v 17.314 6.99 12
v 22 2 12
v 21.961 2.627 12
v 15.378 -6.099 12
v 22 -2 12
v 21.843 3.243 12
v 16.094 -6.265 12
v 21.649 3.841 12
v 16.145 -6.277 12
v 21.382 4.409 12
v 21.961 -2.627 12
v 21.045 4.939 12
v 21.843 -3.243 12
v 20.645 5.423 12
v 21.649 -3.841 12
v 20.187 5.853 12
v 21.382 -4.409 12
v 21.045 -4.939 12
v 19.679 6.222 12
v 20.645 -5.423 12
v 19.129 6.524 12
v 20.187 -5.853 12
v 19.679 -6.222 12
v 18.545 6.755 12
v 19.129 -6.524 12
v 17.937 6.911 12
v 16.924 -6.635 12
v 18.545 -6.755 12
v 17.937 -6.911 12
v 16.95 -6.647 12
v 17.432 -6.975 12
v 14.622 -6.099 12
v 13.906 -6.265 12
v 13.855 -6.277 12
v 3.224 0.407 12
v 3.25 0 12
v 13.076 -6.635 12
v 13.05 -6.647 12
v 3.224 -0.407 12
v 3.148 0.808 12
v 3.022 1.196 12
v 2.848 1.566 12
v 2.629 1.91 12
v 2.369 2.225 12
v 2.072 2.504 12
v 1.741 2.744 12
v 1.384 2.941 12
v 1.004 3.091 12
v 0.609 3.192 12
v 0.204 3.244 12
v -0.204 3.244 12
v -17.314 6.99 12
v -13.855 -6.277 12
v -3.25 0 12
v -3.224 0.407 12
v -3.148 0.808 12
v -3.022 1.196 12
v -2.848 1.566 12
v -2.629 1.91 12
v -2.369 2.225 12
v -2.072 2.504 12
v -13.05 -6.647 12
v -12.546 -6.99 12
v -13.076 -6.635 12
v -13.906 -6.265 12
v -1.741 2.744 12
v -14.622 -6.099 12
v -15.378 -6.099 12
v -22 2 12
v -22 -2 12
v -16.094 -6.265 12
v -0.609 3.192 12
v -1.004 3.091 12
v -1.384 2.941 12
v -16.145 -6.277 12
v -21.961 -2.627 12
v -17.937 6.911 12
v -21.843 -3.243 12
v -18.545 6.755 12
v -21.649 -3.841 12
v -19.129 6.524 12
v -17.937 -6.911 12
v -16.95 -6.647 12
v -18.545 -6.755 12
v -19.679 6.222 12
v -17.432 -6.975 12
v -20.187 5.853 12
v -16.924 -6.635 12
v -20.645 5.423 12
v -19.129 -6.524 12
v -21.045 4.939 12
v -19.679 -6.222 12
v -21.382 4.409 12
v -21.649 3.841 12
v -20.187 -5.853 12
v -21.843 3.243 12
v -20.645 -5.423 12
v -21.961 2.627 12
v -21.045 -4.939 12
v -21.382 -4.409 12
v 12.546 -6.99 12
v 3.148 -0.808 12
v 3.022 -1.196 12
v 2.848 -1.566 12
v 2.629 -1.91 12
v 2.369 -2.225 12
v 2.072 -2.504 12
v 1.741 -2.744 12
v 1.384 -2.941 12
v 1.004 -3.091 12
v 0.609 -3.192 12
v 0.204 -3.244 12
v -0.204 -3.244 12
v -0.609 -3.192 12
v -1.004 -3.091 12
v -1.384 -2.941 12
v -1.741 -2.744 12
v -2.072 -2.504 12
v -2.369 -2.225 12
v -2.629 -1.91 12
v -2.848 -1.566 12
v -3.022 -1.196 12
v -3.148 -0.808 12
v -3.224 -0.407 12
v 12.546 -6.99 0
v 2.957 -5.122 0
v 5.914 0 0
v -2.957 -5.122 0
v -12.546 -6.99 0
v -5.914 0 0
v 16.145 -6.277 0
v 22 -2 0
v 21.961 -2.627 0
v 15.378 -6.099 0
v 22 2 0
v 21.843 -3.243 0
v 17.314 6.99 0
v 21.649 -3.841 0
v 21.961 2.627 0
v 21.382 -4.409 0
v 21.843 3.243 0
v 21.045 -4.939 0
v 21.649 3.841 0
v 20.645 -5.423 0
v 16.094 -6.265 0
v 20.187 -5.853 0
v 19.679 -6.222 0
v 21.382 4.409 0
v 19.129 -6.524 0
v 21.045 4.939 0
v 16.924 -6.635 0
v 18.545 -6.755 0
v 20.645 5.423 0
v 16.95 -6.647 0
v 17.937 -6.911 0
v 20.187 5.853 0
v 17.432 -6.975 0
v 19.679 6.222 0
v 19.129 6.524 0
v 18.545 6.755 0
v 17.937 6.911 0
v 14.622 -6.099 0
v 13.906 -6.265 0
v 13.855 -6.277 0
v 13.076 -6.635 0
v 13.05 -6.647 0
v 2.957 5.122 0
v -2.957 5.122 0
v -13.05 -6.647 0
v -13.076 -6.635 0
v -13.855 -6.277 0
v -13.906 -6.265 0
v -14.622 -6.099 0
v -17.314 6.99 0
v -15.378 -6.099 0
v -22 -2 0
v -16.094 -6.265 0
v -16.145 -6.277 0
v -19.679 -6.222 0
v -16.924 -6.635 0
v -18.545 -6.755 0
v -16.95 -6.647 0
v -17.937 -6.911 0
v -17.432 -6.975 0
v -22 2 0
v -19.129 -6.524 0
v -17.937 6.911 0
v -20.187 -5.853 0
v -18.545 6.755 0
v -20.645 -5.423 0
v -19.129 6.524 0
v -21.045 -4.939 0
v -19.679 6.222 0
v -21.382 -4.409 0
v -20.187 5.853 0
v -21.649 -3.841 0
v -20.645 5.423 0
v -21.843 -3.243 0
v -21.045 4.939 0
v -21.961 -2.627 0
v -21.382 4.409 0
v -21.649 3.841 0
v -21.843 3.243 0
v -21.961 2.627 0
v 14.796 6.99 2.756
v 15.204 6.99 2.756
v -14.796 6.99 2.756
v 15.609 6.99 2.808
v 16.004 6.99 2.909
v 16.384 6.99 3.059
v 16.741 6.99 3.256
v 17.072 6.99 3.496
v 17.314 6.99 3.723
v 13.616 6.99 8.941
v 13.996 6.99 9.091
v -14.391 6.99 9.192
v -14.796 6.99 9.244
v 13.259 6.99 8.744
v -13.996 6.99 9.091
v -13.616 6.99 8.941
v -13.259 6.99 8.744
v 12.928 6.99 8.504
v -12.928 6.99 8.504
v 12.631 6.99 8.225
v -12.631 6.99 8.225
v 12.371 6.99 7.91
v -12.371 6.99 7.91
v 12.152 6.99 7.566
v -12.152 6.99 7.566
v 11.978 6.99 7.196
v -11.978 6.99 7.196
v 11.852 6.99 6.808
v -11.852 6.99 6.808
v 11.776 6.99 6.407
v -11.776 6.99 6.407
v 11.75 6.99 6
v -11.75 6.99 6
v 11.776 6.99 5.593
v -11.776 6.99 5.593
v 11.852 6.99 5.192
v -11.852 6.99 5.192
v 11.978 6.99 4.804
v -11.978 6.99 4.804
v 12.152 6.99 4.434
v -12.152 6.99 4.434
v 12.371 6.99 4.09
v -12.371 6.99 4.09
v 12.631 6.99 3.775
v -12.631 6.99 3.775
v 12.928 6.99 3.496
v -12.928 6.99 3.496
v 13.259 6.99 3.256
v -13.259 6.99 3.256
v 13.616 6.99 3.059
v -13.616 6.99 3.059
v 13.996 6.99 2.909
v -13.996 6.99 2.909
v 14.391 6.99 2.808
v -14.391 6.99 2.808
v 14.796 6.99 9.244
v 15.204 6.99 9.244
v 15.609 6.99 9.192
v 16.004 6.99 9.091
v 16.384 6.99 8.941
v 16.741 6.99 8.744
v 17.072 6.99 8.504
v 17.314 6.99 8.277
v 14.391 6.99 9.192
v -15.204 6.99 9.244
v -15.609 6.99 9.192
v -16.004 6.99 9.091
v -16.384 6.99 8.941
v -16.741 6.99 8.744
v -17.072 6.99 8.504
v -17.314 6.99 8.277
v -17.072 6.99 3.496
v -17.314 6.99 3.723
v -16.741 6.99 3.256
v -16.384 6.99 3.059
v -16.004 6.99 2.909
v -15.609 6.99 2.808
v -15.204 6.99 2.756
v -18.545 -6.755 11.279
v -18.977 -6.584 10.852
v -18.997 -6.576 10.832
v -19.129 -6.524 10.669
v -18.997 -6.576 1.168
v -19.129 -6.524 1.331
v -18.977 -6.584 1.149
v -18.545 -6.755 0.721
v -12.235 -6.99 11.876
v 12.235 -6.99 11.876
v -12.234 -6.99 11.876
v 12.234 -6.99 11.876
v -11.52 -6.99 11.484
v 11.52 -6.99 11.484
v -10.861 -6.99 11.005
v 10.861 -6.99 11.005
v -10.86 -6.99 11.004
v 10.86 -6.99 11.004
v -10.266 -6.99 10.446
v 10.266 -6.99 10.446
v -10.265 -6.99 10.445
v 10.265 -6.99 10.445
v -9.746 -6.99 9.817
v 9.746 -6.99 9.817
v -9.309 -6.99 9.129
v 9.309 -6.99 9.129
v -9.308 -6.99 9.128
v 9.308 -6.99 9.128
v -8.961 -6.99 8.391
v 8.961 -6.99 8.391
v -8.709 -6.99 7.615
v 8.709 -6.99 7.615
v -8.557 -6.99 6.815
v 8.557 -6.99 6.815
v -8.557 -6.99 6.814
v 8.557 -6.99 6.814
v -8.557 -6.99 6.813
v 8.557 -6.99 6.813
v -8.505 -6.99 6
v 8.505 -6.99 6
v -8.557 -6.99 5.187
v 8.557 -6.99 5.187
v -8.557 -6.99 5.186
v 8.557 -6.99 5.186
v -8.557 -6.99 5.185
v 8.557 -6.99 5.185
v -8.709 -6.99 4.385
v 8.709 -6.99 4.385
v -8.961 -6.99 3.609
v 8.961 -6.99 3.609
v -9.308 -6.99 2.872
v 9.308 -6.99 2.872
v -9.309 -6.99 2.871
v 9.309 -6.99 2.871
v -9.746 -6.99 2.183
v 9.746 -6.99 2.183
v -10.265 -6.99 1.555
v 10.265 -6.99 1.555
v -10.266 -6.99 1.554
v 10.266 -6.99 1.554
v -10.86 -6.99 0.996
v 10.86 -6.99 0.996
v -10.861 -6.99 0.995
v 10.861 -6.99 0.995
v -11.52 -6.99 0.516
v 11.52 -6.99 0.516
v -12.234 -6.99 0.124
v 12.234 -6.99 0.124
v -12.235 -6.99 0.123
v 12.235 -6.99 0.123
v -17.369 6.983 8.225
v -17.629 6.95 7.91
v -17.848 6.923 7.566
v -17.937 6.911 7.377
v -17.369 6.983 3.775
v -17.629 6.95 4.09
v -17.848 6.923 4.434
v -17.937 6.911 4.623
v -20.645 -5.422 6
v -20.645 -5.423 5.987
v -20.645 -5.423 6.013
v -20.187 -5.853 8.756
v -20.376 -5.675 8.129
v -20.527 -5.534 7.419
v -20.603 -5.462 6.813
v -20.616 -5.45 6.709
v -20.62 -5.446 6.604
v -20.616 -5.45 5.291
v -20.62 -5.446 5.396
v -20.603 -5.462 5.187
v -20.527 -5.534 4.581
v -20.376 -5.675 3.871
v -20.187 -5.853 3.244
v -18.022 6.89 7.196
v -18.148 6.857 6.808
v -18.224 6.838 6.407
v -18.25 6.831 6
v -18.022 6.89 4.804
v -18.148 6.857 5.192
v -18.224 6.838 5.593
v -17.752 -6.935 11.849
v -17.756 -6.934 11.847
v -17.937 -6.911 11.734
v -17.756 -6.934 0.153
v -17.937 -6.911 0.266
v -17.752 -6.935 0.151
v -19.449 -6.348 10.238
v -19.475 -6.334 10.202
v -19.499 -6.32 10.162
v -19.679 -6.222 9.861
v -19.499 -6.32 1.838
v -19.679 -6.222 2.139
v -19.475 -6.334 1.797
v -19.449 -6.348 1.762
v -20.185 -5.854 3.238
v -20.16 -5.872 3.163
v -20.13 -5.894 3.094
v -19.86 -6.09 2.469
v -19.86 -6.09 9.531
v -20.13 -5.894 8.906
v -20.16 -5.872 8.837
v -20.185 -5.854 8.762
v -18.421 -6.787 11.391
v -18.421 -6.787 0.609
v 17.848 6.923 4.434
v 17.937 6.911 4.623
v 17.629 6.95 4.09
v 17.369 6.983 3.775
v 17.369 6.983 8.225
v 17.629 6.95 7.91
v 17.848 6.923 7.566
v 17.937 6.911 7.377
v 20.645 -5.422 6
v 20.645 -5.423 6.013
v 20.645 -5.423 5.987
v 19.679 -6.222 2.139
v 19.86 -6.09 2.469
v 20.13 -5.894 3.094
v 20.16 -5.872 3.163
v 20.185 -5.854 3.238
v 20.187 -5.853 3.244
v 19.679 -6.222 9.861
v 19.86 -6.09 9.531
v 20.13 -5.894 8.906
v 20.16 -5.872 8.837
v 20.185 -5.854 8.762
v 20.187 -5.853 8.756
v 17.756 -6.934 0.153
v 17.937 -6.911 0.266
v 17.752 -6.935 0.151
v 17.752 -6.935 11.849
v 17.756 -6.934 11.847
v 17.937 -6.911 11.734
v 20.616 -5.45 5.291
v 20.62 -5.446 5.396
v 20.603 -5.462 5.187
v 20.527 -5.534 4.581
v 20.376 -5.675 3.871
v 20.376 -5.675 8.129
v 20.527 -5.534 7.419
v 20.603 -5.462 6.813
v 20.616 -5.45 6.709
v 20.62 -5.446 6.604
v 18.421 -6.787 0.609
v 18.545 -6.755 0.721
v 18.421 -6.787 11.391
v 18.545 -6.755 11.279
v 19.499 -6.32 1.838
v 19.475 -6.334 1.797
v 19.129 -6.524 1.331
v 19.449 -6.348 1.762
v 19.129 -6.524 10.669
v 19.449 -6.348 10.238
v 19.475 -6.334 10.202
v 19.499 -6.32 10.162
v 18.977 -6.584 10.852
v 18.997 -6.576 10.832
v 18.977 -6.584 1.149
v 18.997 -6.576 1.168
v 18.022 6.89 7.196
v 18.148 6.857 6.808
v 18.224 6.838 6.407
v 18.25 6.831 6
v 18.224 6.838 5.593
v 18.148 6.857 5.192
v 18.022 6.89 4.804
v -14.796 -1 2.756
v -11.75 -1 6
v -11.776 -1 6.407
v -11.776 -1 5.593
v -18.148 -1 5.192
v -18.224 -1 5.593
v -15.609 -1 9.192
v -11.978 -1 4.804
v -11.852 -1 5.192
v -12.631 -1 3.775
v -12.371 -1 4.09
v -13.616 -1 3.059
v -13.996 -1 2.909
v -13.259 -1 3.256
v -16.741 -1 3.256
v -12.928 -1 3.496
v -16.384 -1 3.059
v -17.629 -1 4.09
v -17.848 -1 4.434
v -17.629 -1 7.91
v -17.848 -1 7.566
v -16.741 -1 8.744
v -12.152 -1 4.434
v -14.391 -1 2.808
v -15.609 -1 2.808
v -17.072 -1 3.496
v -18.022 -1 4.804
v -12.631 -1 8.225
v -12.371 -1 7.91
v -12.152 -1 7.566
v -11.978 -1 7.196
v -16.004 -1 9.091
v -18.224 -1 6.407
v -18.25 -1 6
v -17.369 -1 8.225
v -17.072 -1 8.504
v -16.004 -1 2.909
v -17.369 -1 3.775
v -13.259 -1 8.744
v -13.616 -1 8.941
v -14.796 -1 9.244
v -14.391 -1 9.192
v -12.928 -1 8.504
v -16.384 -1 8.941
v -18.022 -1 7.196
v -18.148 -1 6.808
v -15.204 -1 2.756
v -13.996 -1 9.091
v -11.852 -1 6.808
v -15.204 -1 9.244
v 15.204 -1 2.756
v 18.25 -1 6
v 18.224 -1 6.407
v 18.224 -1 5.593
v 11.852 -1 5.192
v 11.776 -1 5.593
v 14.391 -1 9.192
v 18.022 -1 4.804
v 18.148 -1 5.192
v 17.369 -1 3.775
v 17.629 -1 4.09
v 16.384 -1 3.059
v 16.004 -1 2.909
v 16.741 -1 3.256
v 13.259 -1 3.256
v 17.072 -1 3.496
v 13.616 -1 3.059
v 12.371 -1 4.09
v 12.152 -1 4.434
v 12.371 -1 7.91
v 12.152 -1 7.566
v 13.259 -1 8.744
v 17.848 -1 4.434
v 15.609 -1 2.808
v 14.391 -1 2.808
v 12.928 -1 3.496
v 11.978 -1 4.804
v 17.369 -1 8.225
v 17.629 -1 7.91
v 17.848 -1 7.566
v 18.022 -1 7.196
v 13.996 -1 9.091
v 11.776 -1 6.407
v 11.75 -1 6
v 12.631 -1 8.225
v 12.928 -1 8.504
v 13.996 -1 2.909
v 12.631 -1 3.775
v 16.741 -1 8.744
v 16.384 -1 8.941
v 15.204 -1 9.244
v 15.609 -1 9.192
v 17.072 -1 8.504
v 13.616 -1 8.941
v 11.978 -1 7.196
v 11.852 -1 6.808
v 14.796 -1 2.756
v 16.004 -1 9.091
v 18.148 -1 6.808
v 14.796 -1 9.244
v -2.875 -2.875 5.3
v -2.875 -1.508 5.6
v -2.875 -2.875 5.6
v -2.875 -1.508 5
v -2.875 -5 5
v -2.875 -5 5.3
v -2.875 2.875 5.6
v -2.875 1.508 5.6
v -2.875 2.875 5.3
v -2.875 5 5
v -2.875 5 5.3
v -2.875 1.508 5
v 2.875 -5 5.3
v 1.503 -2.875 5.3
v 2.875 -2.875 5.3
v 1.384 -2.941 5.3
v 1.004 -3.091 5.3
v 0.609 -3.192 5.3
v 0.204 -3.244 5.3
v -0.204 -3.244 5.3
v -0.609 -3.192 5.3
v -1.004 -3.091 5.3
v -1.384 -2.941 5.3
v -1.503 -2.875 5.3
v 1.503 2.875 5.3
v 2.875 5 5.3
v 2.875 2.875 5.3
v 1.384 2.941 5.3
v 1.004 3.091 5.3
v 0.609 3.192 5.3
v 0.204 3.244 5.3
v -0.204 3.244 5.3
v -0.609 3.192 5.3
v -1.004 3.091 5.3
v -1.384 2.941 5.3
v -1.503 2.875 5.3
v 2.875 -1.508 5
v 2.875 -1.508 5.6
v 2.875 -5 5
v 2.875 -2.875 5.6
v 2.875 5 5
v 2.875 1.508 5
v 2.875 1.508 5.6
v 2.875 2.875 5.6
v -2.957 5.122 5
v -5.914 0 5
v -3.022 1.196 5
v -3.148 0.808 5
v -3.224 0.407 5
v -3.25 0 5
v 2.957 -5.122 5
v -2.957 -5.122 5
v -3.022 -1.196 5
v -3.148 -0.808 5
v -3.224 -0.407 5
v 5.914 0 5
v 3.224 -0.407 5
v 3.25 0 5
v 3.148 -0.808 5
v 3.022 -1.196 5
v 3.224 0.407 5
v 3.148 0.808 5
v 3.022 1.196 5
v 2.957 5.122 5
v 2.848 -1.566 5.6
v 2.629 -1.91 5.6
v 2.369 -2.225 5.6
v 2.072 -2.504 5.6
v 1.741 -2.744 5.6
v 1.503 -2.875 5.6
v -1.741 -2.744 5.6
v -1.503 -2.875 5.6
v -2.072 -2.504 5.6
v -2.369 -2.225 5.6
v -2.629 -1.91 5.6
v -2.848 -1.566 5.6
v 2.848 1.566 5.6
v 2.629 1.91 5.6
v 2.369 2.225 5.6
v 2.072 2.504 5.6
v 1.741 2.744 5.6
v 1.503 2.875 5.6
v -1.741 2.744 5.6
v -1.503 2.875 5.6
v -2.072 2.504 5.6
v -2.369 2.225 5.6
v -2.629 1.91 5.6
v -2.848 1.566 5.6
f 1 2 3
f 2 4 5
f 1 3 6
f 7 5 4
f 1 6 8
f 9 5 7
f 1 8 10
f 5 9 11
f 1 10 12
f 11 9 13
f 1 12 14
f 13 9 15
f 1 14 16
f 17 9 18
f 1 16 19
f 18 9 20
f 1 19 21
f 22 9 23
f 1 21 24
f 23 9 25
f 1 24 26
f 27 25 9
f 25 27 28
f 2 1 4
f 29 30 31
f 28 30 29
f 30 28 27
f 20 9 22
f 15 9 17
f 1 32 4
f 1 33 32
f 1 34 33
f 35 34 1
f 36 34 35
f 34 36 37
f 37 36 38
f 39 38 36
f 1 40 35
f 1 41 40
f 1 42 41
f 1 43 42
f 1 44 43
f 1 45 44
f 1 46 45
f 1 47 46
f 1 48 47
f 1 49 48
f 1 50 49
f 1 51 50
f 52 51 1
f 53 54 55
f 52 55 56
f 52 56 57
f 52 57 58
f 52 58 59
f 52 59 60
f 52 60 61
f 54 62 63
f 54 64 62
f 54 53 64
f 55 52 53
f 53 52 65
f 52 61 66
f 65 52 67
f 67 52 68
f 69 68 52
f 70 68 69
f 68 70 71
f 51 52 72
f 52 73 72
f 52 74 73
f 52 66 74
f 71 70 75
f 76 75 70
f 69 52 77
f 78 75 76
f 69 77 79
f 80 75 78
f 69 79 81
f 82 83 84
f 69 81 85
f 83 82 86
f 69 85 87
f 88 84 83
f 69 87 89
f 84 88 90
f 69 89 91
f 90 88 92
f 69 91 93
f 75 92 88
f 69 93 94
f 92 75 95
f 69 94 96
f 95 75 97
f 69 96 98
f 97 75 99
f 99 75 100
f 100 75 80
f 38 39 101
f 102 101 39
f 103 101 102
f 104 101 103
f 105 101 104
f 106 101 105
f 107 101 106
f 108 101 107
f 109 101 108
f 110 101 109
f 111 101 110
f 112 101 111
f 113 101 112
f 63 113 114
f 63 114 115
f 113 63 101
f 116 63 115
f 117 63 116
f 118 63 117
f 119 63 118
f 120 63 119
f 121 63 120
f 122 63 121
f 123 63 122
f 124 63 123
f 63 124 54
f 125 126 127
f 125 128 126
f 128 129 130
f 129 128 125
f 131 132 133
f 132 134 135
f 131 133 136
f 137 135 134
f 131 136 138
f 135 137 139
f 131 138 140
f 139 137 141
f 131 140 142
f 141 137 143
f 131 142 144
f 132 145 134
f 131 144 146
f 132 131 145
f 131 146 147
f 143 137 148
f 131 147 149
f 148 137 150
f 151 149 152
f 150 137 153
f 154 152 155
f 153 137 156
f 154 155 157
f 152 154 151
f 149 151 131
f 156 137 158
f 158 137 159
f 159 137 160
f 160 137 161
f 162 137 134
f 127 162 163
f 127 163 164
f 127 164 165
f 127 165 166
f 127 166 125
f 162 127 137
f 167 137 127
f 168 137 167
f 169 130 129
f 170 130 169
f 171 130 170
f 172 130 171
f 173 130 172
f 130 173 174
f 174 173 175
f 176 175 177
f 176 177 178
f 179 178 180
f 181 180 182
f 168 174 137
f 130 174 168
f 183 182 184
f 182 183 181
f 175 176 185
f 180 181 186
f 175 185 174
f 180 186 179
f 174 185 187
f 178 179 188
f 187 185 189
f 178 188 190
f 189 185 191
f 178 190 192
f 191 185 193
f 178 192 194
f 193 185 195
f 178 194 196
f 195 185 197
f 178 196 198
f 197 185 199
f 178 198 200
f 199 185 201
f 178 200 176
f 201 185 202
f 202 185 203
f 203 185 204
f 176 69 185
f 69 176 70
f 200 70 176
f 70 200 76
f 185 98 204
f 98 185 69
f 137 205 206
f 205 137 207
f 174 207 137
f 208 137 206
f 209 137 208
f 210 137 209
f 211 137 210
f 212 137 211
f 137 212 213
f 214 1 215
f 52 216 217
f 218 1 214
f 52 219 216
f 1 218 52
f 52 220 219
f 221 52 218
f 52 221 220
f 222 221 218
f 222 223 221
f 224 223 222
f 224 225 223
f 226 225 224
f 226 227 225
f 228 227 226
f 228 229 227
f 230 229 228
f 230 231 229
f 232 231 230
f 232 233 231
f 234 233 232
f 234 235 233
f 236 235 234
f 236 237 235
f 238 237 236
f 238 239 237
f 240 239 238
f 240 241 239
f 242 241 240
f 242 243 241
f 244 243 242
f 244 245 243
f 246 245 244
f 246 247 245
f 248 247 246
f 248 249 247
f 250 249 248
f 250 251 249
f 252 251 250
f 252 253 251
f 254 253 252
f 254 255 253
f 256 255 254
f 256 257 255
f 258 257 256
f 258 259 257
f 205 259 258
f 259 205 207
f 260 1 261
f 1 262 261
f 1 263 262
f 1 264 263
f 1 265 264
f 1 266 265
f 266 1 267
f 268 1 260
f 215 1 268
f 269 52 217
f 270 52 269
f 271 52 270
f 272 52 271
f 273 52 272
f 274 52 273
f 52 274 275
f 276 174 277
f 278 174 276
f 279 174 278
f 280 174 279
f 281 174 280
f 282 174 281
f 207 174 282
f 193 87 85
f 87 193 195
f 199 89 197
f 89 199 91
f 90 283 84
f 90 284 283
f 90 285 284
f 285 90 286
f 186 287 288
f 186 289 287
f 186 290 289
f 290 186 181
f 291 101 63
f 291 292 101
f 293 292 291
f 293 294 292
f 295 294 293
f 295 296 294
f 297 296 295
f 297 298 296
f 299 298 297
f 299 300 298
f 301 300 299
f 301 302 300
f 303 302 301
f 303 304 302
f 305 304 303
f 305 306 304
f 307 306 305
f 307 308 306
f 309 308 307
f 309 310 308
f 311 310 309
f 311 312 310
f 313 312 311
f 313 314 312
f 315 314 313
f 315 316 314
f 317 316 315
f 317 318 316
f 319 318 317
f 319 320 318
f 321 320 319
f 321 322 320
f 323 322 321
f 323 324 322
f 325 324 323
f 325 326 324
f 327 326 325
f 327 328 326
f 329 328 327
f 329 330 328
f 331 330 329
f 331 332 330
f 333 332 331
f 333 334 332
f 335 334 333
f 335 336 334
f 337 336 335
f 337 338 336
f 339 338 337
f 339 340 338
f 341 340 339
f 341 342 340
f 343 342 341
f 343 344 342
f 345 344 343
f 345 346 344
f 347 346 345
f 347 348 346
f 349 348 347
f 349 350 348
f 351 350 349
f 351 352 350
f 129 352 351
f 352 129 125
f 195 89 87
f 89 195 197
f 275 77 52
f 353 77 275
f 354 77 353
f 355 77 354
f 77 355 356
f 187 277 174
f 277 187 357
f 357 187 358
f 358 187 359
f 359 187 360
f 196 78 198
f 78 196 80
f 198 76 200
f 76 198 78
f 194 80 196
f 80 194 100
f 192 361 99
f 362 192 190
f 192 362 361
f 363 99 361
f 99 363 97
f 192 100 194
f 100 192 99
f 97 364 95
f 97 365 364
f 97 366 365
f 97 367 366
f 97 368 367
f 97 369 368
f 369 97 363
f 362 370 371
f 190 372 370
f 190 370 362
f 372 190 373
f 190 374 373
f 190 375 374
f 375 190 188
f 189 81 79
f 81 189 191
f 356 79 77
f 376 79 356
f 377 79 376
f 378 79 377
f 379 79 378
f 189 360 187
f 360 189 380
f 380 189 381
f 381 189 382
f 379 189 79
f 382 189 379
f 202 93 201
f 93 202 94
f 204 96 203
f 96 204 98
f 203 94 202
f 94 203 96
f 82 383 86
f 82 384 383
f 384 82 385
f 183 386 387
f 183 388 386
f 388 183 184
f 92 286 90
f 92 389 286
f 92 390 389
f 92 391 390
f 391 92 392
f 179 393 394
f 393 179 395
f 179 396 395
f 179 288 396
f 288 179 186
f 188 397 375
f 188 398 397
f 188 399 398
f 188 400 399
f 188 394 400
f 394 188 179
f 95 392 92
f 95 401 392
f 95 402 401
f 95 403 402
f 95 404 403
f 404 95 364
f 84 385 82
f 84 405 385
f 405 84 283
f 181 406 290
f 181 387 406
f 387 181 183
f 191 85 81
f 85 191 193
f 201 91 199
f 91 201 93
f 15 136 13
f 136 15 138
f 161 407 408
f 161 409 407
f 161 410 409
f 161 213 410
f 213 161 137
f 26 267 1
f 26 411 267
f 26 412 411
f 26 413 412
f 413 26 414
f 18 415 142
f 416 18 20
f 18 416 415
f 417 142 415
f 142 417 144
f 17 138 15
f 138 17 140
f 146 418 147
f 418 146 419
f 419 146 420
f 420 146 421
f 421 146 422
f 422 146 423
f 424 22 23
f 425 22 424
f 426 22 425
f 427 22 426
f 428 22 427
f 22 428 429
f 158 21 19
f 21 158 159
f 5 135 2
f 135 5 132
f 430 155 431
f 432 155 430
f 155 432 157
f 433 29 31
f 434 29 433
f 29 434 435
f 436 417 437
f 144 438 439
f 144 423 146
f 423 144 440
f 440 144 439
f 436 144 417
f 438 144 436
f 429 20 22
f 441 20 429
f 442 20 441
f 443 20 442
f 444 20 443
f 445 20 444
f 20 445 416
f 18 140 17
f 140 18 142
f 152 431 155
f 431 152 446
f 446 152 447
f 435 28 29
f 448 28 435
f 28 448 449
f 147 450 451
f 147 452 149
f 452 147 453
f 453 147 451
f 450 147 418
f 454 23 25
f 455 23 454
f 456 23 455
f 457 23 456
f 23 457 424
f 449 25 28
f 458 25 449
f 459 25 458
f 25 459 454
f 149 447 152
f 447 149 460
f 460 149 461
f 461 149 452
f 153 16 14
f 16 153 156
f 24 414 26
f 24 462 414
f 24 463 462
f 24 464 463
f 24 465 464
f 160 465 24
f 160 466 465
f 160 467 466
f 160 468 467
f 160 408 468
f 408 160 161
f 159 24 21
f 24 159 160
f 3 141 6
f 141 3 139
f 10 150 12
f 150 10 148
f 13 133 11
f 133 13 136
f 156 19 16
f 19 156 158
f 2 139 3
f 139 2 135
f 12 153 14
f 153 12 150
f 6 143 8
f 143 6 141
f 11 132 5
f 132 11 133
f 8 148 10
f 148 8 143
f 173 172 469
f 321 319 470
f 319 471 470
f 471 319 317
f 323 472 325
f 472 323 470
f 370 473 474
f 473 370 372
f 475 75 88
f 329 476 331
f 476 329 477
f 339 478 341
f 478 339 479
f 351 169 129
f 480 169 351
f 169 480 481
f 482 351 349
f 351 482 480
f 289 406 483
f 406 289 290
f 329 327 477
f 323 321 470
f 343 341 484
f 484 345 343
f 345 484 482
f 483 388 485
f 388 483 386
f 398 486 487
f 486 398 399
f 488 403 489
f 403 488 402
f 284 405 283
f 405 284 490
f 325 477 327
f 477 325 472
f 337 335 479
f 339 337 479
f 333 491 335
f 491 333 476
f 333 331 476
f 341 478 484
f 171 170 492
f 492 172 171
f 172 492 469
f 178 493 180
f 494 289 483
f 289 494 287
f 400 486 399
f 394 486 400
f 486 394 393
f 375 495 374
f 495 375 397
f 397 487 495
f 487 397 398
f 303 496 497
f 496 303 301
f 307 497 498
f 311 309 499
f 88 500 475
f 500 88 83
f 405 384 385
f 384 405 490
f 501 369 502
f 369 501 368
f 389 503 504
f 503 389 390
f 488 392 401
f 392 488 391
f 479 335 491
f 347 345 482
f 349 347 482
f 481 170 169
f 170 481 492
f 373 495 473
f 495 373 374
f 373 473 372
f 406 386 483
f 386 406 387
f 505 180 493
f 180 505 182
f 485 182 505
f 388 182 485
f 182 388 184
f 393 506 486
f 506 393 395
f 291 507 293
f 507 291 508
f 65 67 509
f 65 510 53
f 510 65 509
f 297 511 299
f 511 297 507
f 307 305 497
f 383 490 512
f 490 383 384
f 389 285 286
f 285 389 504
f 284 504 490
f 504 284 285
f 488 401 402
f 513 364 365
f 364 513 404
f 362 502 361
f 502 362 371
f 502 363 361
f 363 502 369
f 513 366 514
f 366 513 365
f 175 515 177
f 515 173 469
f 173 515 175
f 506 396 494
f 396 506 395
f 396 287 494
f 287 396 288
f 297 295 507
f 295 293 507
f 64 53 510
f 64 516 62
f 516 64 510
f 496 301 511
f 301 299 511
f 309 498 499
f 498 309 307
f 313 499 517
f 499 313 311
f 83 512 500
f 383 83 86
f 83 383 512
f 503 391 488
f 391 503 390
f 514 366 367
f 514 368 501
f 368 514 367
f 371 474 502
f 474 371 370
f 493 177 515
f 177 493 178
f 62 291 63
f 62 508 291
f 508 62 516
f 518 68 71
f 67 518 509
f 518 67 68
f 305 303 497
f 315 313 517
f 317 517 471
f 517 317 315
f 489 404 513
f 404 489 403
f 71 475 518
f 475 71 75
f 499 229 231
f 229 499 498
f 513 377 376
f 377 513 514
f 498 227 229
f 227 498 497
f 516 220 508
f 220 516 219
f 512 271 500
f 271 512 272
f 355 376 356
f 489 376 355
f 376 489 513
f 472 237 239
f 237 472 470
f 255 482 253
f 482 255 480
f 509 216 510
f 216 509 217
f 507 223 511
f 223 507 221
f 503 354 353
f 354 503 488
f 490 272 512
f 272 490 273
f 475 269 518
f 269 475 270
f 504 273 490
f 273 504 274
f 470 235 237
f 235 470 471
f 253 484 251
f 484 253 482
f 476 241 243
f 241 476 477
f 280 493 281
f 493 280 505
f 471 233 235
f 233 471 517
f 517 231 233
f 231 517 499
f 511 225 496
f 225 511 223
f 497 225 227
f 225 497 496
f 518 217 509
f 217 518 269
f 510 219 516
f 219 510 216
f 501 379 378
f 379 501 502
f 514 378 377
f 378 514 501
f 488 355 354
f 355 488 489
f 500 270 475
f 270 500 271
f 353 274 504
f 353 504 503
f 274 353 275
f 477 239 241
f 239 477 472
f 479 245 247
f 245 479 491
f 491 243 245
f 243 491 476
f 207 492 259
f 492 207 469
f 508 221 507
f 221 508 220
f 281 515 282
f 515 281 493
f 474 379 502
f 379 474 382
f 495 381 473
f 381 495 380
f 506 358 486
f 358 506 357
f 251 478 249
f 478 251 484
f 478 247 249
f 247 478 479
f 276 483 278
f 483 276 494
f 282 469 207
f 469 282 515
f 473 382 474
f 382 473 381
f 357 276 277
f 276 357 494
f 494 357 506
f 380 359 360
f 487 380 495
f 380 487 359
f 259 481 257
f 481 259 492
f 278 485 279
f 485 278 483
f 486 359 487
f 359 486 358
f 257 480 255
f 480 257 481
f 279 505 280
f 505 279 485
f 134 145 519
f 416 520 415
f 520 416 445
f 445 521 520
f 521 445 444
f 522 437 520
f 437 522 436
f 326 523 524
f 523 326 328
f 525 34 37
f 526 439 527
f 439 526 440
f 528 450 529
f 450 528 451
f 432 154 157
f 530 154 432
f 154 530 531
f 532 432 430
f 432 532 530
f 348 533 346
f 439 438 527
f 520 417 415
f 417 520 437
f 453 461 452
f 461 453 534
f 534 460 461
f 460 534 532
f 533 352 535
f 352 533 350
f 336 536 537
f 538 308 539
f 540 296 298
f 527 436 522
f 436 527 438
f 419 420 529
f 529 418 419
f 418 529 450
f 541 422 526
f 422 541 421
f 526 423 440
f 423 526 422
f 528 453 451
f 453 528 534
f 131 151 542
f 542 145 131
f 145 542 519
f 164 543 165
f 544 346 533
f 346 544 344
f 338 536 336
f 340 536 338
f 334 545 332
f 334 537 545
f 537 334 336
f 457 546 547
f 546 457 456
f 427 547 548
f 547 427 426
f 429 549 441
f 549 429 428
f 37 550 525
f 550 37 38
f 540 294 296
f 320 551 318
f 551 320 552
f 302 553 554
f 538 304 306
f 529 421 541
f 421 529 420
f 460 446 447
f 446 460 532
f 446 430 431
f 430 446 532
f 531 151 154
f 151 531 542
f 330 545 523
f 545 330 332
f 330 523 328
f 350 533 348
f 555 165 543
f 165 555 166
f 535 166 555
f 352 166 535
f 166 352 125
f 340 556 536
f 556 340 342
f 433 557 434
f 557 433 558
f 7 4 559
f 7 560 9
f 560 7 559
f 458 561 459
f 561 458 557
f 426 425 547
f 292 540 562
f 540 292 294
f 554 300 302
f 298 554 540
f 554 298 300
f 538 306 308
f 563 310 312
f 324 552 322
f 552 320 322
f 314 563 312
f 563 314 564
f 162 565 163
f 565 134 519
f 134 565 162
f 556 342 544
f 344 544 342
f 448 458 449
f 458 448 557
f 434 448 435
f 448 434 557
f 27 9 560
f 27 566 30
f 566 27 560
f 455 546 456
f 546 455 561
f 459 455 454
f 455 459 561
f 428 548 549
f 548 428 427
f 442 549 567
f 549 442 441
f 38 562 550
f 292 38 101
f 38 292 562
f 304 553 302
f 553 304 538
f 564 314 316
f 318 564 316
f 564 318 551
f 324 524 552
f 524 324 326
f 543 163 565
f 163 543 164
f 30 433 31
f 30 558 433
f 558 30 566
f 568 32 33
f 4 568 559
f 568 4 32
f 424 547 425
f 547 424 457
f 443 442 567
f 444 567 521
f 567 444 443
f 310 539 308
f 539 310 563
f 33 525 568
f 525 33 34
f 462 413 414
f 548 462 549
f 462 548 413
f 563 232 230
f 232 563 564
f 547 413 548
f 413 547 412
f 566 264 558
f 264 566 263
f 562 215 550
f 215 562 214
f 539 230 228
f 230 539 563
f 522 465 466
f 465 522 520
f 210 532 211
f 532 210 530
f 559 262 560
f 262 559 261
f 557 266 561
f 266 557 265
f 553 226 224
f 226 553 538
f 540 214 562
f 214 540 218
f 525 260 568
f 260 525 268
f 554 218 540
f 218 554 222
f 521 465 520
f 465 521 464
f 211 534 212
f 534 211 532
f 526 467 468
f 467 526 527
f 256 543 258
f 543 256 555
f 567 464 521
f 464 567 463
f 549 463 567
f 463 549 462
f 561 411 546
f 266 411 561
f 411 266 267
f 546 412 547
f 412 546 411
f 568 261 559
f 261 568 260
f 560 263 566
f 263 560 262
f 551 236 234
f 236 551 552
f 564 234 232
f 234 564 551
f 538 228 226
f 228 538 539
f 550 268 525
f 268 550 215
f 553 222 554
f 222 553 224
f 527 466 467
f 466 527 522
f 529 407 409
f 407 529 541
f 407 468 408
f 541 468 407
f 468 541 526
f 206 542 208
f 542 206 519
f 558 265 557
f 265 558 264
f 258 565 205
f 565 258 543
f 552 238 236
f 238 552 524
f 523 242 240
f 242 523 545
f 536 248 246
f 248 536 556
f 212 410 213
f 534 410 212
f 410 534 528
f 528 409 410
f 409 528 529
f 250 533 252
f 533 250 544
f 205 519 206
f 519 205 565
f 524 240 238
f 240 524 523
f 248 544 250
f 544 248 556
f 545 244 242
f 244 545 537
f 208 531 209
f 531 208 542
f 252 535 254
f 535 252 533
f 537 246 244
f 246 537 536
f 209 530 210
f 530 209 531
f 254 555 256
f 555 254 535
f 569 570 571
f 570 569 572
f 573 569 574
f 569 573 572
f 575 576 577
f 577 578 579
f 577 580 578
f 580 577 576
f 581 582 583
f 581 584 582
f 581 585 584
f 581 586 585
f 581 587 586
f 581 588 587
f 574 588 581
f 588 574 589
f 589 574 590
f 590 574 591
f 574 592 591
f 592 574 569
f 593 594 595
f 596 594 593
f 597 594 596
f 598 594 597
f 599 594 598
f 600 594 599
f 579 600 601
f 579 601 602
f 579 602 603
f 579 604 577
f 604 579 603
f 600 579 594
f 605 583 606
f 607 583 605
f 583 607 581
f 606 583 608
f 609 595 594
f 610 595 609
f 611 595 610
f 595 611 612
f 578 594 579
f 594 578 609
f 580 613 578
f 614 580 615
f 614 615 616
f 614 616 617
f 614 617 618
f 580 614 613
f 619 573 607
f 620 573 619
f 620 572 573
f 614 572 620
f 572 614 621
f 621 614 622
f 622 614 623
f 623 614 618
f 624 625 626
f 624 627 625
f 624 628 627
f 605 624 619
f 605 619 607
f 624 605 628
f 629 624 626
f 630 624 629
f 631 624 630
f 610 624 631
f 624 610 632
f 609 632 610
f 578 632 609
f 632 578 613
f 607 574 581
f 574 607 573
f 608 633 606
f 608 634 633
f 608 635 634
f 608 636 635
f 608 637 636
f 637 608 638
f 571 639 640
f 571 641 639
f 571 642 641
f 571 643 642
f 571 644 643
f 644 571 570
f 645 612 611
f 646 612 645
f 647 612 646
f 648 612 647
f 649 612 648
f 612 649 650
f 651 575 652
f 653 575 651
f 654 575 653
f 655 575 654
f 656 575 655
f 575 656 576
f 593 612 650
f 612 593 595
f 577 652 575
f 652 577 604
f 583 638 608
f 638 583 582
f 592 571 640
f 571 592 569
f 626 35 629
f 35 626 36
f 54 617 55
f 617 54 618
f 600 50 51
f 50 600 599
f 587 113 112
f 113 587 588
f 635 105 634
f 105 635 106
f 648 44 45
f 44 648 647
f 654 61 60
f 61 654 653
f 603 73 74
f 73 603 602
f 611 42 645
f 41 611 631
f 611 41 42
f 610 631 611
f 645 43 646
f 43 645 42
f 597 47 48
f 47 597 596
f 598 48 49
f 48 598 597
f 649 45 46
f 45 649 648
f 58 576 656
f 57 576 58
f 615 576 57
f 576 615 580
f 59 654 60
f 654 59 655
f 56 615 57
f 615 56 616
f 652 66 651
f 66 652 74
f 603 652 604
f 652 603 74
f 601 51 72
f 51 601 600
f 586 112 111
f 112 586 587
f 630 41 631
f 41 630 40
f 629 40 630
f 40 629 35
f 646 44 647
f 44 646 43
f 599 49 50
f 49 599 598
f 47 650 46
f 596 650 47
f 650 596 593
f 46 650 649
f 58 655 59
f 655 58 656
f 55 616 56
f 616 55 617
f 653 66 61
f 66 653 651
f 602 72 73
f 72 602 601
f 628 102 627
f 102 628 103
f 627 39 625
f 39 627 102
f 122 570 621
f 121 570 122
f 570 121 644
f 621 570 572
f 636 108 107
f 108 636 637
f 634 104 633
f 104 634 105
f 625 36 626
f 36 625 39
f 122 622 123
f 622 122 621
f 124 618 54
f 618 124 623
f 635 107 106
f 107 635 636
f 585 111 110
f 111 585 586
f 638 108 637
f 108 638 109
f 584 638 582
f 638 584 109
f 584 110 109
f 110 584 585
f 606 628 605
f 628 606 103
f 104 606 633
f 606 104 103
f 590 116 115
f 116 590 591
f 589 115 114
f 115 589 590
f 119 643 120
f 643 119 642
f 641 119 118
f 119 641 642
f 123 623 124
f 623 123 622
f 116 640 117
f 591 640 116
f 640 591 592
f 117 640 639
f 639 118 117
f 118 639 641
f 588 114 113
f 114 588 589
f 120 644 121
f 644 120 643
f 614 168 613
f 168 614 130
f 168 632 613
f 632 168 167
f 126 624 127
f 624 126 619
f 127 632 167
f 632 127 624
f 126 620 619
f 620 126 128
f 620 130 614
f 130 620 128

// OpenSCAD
$fn = 50;


difference() {
	union() {
		cylinder(h = 12, r = 7.0000000000);
		translate(v = [-7.5000000000, 0.0000000000, 0]) {
			hull() {
				translate(v = [-9.5000000000, 2.0000000000, 0]) {
					cylinder(h = 12, r = 5);
				}
				translate(v = [9.5000000000, 2.0000000000, 0]) {
					cylinder(h = 12, r = 5);
				}
				translate(v = [-9.5000000000, -2.0000000000, 0]) {
					cylinder(h = 12, r = 5);
				}
				translate(v = [9.5000000000, -2.0000000000, 0]) {
					cylinder(h = 12, r = 5);
				}
			}
		}
		translate(v = [7.5000000000, 0.0000000000, 0]) {
			hull() {
				translate(v = [-9.5000000000, 2.0000000000, 0]) {
					cylinder(h = 12, r = 5);
				}
				translate(v = [9.5000000000, 2.0000000000, 0]) {
					cylinder(h = 12, r = 5);
				}
				translate(v = [-9.5000000000, -2.0000000000, 0]) {
					cylinder(h = 12, r = 5);
				}
				translate(v = [9.5000000000, -2.0000000000, 0]) {
					cylinder(h = 12, r = 5);
				}
			}
		}
	}
	union() {
		translate(v = [-15.0000000000, -7.0000000000, 6.0000000000]) {
			rotate(a = [90, 0, 0]) {
				difference() {
					union() {
						#translate(v = [0, 0, -14.0000000000]) {
							cylinder(h = 14, r = 2.2500000000);
						}
						#translate(v = [0, 0, -6]) {
							cylinder(h = 6, r1 = 3.2500000000, r2 = 6.5000000000);
						}
						#translate(v = [0, 0, -14.0000000000]) {
							cylinder(h = 14, r = 3.2500000000);
						}
						#translate(v = [0, 0, -14.0000000000]) {
							cylinder(h = 14, r = 2.2500000000);
						}
					}
					union();
				}
			}
		}
		translate(v = [15.0000000000, -7.0000000000, 6.0000000000]) {
			rotate(a = [90, 0, 0]) {
				difference() {
					union() {
						#translate(v = [0, 0, -14.0000000000]) {
							cylinder(h = 14, r = 2.2500000000);
						}
						#translate(v = [0, 0, -6]) {
							cylinder(h = 6, r1 = 3.2500000000, r2 = 6.5000000000);
						}
						#translate(v = [0, 0, -14.0000000000]) {
							cylinder(h = 14, r = 3.2500000000);
						}
						#translate(v = [0, 0, -14.0000000000]) {
							cylinder(h = 14, r = 2.2500000000);
						}
					}
					union();
				}
			}
		}
		translate(v = [0.0000000000, 0.0000000000, 0]) {
			rotate(a = [0, 0, 0]) {
				difference() {
					union() {
						#translate(v = [-2.8750000000, -5.0000000000, -0.3000000000]) {
							cube(size = [5.7500000000, 10, 0.3000000000]);
						}
						#translate(v = [-2.8750000000, -2.8750000000, -0.6000000000]) {
							cube(size = [5.7500000000, 5.7500000000, 0.3000000000]);
						}
						#translate(v = [-2.8750000000, -5.0000000000, 5]) {
							cube(size = [5.7500000000, 10, 0.3000000000]);
						}
						#translate(v = [-2.8750000000, -2.8750000000, 5.3000000000]) {
							cube(size = [5.7500000000, 5.7500000000, 0.3000000000]);
						}
						#translate(v = [0, 0, -100.0000000000]) {
							cylinder(h = 200, r = 3.2500000000);
						}
						#linear_extrude(height = 5) {
							polygon(points = [[5.9142500000, 0.0000000000], [2.9571250000, 5.1218907443], [-2.9571250000, 5.1218907443], [-5.9142500000, 0.0000000000], [-2.9571250000, -5.1218907443], [2.9571250000, -5.1218907443]]);
						}
						#translate(v = [-2.8750000000, -5.0000000000, -0.3000000000]) {
							cube(size = [5.7500000000, 10, 0.3000000000]);
						}
						#translate(v = [-2.8750000000, -2.8750000000, -0.6000000000]) {
							cube(size = [5.7500000000, 5.7500000000, 0.3000000000]);
						}
						#translate(v = [-2.8750000000, -5.0000000000, 5]) {
							cube(size = [5.7500000000, 10, 0.3000000000]);
						}
						#translate(v = [-2.8750000000, -2.8750000000, 5.3000000000]) {
							cube(size = [5.7500000000, 5.7500000000, 0.3000000000]);
						}
						#translate(v = [0, 0, -100.0000000000]) {
							cylinder(h = 200, r = 3.2500000000);
						}
						#translate(v = [-2.8750000000, -5.0000000000, -0.3000000000]) {
							cube(size = [5.7500000000, 10, 0.3000000000]);
						}
						#translate(v = [-2.8750000000, -2.8750000000, -0.6000000000]) {
							cube(size = [5.7500000000, 5.7500000000, 0.3000000000]);
						}
						#translate(v = [-2.8750000000, -5.0000000000, 5]) {
							cube(size = [5.7500000000, 10, 0.3000000000]);
						}
						#translate(v = [-2.8750000000, -2.8750000000, 5.3000000000]) {
							cube(size = [5.7500000000, 5.7500000000, 0.3000000000]);
						}
						#translate(v = [0, 0, -100.0000000000]) {
							cylinder(h = 200, r = 3.2500000000);
						}
					}
					union();
				}
			}
		}
		translate(v = [0, 0, -100]) {
			cylinder(h = 200, r = 3.2500000000);
		}
		translate(v = [0, 0, -100]) {
			cylinder(h = 200, r = 1.8000000000);
		}
	}
}
